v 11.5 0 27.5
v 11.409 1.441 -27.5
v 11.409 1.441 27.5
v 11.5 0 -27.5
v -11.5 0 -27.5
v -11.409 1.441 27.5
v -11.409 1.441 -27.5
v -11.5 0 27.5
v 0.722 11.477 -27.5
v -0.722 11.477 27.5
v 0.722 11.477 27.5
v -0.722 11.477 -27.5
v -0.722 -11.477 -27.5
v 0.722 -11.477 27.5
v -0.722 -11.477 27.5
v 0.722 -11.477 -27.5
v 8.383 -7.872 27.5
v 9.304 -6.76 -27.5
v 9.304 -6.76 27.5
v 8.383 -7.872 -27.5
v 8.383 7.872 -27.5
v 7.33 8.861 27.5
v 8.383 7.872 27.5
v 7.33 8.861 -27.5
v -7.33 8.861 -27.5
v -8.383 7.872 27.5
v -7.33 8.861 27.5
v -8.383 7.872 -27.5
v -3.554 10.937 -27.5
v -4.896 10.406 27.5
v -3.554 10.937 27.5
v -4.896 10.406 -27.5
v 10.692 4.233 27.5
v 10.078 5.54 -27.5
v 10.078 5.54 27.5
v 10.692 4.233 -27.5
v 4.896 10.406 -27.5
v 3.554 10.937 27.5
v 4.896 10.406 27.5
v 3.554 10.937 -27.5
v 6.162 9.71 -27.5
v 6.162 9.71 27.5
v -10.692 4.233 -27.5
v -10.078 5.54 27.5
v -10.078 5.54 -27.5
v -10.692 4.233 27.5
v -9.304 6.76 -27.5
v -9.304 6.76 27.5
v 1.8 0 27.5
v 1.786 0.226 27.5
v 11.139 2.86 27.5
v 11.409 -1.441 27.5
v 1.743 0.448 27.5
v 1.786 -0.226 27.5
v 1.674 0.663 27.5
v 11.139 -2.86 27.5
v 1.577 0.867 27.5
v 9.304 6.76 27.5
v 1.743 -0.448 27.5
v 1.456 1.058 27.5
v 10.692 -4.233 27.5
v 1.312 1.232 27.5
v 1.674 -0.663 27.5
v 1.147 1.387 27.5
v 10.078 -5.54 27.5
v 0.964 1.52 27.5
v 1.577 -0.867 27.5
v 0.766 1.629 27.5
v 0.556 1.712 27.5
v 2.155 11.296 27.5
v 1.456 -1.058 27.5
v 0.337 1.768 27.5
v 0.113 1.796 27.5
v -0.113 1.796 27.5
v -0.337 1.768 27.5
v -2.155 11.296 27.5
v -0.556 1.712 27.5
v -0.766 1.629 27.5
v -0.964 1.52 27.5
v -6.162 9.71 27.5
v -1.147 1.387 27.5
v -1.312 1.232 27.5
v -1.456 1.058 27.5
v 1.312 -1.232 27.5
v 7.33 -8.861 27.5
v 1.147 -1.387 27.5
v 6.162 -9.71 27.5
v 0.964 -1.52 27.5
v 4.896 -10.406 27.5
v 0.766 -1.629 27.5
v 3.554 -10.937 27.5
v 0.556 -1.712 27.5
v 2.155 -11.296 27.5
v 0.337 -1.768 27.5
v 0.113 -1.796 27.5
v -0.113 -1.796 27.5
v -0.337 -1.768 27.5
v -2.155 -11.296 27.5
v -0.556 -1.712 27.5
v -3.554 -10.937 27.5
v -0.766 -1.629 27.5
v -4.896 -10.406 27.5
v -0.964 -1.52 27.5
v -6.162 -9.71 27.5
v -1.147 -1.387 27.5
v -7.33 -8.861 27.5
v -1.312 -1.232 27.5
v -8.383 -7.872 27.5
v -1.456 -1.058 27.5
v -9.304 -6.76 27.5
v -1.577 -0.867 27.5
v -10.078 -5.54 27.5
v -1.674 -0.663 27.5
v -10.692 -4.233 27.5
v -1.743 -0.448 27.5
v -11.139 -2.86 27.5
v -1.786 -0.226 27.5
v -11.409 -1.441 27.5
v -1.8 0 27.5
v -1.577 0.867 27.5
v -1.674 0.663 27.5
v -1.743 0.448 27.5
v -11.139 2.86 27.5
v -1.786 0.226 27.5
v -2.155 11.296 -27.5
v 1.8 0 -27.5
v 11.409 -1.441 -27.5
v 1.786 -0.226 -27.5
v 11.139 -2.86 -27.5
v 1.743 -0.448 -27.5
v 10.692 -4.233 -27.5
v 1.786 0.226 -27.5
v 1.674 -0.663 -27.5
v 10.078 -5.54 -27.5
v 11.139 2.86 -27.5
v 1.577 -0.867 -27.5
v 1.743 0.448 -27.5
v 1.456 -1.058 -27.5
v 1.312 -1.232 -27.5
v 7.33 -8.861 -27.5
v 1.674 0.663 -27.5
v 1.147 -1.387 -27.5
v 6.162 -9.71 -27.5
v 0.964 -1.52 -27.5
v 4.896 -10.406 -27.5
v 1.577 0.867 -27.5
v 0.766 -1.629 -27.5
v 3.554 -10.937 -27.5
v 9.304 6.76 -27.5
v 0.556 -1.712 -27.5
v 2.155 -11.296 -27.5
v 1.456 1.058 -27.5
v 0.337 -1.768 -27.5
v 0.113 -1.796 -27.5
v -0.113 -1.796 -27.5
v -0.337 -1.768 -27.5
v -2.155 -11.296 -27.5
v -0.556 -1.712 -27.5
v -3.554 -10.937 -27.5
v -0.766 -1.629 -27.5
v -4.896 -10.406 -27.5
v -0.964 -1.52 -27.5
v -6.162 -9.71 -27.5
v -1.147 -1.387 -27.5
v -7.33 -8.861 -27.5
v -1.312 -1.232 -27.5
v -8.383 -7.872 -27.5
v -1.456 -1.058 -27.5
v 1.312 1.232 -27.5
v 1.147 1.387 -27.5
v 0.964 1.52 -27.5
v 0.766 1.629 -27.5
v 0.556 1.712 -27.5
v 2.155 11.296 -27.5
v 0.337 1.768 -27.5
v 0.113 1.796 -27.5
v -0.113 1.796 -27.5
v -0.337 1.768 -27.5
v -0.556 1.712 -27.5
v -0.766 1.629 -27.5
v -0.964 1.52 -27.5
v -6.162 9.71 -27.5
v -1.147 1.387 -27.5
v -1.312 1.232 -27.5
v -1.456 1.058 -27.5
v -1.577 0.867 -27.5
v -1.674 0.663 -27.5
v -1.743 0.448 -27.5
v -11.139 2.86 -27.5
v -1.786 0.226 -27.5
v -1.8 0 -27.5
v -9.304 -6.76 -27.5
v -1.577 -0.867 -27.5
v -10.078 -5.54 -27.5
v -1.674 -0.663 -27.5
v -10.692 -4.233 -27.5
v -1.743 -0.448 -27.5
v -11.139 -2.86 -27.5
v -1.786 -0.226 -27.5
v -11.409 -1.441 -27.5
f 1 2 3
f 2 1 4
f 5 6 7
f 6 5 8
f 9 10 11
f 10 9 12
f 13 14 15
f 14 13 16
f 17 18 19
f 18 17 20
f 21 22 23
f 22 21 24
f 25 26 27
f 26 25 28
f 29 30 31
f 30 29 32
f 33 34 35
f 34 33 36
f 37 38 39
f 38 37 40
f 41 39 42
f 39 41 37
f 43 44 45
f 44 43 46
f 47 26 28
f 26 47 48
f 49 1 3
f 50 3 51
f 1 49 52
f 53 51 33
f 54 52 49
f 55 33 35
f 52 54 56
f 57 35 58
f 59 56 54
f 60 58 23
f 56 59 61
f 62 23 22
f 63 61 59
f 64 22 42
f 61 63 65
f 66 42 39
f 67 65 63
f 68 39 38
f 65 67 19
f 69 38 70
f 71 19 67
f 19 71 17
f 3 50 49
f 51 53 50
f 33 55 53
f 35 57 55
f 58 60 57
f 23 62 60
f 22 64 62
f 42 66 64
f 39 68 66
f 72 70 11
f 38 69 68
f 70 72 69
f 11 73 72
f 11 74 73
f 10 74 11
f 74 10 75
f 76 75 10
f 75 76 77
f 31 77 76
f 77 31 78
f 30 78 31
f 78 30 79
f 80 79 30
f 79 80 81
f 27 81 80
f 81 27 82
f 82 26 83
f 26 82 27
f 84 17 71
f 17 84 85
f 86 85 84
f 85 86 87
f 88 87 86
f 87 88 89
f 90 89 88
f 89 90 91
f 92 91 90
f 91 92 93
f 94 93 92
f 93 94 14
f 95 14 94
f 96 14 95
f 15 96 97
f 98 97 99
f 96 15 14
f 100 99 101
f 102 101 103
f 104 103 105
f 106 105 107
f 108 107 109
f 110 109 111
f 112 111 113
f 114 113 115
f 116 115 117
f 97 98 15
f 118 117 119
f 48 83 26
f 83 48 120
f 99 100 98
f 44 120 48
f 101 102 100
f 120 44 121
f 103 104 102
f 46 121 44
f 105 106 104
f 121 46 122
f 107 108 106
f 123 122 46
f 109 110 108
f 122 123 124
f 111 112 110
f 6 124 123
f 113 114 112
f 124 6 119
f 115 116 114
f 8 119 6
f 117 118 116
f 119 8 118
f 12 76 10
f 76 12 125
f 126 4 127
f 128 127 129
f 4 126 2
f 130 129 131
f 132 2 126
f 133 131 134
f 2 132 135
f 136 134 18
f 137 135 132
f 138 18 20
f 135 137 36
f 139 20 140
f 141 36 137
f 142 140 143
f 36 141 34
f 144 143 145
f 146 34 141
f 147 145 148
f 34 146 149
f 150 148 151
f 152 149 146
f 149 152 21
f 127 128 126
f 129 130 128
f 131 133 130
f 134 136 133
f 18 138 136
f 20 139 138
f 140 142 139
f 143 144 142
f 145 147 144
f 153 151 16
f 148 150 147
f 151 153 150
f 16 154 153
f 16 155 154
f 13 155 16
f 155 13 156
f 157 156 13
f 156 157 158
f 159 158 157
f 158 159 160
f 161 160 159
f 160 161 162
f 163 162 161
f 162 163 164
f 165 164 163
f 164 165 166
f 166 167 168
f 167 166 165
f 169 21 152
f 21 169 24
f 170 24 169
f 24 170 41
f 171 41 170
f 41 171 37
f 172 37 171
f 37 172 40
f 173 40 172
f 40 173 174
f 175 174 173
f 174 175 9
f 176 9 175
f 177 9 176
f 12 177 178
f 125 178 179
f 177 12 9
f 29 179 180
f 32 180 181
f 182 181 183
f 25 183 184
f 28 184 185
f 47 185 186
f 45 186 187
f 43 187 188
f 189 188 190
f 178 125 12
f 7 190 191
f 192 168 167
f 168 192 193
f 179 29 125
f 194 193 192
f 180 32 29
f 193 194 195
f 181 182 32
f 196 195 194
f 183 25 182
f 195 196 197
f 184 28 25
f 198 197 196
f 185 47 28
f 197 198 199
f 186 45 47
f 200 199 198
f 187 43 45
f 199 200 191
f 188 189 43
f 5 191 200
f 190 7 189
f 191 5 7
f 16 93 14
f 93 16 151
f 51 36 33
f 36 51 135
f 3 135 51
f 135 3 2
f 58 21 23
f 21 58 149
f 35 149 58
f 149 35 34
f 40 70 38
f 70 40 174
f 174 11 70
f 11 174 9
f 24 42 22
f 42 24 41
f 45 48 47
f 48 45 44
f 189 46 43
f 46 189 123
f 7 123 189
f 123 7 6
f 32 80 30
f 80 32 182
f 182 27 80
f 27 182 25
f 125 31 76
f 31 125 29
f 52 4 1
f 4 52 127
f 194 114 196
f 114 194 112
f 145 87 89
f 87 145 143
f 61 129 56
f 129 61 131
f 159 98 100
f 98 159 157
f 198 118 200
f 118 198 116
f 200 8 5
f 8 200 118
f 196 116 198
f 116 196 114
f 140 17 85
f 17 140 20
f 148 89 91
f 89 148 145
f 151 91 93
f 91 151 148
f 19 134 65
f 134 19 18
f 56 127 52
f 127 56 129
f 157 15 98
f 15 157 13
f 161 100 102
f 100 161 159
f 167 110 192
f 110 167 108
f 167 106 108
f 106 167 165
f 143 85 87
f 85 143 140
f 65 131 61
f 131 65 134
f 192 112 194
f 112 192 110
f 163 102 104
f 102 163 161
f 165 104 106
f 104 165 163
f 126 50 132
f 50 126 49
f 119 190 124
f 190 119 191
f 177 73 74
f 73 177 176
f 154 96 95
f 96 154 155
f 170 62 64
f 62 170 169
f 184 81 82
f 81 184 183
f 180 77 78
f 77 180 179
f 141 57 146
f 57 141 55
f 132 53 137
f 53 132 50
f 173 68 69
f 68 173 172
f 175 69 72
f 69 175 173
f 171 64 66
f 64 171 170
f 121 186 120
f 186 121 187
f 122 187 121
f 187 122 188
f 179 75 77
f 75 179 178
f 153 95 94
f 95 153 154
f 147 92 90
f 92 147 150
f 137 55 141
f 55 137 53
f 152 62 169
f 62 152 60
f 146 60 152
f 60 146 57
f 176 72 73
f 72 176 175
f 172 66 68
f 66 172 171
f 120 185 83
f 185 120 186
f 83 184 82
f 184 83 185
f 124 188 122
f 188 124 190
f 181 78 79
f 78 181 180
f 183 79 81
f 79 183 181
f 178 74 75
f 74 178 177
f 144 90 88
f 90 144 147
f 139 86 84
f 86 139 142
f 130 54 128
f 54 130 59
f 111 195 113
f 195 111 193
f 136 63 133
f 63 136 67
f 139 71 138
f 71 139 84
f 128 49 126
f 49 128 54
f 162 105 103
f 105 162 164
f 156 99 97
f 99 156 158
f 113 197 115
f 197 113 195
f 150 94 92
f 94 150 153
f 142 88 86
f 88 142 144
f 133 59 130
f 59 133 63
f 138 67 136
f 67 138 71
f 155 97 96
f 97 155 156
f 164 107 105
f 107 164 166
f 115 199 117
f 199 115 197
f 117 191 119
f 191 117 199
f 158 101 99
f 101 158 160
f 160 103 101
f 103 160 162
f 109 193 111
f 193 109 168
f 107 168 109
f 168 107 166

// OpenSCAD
$fn = 50;


difference() {
	union() {
		translate(v = [0, 0, -27.5000000000]) {
			cylinder(h = 55, r = 11.5000000000);
		}
	}
	union() {
		translate(v = [0, 0, -100.0000000000]) {
			cylinder(h = 200, r = 1.8000000000);
		}
	}
}
